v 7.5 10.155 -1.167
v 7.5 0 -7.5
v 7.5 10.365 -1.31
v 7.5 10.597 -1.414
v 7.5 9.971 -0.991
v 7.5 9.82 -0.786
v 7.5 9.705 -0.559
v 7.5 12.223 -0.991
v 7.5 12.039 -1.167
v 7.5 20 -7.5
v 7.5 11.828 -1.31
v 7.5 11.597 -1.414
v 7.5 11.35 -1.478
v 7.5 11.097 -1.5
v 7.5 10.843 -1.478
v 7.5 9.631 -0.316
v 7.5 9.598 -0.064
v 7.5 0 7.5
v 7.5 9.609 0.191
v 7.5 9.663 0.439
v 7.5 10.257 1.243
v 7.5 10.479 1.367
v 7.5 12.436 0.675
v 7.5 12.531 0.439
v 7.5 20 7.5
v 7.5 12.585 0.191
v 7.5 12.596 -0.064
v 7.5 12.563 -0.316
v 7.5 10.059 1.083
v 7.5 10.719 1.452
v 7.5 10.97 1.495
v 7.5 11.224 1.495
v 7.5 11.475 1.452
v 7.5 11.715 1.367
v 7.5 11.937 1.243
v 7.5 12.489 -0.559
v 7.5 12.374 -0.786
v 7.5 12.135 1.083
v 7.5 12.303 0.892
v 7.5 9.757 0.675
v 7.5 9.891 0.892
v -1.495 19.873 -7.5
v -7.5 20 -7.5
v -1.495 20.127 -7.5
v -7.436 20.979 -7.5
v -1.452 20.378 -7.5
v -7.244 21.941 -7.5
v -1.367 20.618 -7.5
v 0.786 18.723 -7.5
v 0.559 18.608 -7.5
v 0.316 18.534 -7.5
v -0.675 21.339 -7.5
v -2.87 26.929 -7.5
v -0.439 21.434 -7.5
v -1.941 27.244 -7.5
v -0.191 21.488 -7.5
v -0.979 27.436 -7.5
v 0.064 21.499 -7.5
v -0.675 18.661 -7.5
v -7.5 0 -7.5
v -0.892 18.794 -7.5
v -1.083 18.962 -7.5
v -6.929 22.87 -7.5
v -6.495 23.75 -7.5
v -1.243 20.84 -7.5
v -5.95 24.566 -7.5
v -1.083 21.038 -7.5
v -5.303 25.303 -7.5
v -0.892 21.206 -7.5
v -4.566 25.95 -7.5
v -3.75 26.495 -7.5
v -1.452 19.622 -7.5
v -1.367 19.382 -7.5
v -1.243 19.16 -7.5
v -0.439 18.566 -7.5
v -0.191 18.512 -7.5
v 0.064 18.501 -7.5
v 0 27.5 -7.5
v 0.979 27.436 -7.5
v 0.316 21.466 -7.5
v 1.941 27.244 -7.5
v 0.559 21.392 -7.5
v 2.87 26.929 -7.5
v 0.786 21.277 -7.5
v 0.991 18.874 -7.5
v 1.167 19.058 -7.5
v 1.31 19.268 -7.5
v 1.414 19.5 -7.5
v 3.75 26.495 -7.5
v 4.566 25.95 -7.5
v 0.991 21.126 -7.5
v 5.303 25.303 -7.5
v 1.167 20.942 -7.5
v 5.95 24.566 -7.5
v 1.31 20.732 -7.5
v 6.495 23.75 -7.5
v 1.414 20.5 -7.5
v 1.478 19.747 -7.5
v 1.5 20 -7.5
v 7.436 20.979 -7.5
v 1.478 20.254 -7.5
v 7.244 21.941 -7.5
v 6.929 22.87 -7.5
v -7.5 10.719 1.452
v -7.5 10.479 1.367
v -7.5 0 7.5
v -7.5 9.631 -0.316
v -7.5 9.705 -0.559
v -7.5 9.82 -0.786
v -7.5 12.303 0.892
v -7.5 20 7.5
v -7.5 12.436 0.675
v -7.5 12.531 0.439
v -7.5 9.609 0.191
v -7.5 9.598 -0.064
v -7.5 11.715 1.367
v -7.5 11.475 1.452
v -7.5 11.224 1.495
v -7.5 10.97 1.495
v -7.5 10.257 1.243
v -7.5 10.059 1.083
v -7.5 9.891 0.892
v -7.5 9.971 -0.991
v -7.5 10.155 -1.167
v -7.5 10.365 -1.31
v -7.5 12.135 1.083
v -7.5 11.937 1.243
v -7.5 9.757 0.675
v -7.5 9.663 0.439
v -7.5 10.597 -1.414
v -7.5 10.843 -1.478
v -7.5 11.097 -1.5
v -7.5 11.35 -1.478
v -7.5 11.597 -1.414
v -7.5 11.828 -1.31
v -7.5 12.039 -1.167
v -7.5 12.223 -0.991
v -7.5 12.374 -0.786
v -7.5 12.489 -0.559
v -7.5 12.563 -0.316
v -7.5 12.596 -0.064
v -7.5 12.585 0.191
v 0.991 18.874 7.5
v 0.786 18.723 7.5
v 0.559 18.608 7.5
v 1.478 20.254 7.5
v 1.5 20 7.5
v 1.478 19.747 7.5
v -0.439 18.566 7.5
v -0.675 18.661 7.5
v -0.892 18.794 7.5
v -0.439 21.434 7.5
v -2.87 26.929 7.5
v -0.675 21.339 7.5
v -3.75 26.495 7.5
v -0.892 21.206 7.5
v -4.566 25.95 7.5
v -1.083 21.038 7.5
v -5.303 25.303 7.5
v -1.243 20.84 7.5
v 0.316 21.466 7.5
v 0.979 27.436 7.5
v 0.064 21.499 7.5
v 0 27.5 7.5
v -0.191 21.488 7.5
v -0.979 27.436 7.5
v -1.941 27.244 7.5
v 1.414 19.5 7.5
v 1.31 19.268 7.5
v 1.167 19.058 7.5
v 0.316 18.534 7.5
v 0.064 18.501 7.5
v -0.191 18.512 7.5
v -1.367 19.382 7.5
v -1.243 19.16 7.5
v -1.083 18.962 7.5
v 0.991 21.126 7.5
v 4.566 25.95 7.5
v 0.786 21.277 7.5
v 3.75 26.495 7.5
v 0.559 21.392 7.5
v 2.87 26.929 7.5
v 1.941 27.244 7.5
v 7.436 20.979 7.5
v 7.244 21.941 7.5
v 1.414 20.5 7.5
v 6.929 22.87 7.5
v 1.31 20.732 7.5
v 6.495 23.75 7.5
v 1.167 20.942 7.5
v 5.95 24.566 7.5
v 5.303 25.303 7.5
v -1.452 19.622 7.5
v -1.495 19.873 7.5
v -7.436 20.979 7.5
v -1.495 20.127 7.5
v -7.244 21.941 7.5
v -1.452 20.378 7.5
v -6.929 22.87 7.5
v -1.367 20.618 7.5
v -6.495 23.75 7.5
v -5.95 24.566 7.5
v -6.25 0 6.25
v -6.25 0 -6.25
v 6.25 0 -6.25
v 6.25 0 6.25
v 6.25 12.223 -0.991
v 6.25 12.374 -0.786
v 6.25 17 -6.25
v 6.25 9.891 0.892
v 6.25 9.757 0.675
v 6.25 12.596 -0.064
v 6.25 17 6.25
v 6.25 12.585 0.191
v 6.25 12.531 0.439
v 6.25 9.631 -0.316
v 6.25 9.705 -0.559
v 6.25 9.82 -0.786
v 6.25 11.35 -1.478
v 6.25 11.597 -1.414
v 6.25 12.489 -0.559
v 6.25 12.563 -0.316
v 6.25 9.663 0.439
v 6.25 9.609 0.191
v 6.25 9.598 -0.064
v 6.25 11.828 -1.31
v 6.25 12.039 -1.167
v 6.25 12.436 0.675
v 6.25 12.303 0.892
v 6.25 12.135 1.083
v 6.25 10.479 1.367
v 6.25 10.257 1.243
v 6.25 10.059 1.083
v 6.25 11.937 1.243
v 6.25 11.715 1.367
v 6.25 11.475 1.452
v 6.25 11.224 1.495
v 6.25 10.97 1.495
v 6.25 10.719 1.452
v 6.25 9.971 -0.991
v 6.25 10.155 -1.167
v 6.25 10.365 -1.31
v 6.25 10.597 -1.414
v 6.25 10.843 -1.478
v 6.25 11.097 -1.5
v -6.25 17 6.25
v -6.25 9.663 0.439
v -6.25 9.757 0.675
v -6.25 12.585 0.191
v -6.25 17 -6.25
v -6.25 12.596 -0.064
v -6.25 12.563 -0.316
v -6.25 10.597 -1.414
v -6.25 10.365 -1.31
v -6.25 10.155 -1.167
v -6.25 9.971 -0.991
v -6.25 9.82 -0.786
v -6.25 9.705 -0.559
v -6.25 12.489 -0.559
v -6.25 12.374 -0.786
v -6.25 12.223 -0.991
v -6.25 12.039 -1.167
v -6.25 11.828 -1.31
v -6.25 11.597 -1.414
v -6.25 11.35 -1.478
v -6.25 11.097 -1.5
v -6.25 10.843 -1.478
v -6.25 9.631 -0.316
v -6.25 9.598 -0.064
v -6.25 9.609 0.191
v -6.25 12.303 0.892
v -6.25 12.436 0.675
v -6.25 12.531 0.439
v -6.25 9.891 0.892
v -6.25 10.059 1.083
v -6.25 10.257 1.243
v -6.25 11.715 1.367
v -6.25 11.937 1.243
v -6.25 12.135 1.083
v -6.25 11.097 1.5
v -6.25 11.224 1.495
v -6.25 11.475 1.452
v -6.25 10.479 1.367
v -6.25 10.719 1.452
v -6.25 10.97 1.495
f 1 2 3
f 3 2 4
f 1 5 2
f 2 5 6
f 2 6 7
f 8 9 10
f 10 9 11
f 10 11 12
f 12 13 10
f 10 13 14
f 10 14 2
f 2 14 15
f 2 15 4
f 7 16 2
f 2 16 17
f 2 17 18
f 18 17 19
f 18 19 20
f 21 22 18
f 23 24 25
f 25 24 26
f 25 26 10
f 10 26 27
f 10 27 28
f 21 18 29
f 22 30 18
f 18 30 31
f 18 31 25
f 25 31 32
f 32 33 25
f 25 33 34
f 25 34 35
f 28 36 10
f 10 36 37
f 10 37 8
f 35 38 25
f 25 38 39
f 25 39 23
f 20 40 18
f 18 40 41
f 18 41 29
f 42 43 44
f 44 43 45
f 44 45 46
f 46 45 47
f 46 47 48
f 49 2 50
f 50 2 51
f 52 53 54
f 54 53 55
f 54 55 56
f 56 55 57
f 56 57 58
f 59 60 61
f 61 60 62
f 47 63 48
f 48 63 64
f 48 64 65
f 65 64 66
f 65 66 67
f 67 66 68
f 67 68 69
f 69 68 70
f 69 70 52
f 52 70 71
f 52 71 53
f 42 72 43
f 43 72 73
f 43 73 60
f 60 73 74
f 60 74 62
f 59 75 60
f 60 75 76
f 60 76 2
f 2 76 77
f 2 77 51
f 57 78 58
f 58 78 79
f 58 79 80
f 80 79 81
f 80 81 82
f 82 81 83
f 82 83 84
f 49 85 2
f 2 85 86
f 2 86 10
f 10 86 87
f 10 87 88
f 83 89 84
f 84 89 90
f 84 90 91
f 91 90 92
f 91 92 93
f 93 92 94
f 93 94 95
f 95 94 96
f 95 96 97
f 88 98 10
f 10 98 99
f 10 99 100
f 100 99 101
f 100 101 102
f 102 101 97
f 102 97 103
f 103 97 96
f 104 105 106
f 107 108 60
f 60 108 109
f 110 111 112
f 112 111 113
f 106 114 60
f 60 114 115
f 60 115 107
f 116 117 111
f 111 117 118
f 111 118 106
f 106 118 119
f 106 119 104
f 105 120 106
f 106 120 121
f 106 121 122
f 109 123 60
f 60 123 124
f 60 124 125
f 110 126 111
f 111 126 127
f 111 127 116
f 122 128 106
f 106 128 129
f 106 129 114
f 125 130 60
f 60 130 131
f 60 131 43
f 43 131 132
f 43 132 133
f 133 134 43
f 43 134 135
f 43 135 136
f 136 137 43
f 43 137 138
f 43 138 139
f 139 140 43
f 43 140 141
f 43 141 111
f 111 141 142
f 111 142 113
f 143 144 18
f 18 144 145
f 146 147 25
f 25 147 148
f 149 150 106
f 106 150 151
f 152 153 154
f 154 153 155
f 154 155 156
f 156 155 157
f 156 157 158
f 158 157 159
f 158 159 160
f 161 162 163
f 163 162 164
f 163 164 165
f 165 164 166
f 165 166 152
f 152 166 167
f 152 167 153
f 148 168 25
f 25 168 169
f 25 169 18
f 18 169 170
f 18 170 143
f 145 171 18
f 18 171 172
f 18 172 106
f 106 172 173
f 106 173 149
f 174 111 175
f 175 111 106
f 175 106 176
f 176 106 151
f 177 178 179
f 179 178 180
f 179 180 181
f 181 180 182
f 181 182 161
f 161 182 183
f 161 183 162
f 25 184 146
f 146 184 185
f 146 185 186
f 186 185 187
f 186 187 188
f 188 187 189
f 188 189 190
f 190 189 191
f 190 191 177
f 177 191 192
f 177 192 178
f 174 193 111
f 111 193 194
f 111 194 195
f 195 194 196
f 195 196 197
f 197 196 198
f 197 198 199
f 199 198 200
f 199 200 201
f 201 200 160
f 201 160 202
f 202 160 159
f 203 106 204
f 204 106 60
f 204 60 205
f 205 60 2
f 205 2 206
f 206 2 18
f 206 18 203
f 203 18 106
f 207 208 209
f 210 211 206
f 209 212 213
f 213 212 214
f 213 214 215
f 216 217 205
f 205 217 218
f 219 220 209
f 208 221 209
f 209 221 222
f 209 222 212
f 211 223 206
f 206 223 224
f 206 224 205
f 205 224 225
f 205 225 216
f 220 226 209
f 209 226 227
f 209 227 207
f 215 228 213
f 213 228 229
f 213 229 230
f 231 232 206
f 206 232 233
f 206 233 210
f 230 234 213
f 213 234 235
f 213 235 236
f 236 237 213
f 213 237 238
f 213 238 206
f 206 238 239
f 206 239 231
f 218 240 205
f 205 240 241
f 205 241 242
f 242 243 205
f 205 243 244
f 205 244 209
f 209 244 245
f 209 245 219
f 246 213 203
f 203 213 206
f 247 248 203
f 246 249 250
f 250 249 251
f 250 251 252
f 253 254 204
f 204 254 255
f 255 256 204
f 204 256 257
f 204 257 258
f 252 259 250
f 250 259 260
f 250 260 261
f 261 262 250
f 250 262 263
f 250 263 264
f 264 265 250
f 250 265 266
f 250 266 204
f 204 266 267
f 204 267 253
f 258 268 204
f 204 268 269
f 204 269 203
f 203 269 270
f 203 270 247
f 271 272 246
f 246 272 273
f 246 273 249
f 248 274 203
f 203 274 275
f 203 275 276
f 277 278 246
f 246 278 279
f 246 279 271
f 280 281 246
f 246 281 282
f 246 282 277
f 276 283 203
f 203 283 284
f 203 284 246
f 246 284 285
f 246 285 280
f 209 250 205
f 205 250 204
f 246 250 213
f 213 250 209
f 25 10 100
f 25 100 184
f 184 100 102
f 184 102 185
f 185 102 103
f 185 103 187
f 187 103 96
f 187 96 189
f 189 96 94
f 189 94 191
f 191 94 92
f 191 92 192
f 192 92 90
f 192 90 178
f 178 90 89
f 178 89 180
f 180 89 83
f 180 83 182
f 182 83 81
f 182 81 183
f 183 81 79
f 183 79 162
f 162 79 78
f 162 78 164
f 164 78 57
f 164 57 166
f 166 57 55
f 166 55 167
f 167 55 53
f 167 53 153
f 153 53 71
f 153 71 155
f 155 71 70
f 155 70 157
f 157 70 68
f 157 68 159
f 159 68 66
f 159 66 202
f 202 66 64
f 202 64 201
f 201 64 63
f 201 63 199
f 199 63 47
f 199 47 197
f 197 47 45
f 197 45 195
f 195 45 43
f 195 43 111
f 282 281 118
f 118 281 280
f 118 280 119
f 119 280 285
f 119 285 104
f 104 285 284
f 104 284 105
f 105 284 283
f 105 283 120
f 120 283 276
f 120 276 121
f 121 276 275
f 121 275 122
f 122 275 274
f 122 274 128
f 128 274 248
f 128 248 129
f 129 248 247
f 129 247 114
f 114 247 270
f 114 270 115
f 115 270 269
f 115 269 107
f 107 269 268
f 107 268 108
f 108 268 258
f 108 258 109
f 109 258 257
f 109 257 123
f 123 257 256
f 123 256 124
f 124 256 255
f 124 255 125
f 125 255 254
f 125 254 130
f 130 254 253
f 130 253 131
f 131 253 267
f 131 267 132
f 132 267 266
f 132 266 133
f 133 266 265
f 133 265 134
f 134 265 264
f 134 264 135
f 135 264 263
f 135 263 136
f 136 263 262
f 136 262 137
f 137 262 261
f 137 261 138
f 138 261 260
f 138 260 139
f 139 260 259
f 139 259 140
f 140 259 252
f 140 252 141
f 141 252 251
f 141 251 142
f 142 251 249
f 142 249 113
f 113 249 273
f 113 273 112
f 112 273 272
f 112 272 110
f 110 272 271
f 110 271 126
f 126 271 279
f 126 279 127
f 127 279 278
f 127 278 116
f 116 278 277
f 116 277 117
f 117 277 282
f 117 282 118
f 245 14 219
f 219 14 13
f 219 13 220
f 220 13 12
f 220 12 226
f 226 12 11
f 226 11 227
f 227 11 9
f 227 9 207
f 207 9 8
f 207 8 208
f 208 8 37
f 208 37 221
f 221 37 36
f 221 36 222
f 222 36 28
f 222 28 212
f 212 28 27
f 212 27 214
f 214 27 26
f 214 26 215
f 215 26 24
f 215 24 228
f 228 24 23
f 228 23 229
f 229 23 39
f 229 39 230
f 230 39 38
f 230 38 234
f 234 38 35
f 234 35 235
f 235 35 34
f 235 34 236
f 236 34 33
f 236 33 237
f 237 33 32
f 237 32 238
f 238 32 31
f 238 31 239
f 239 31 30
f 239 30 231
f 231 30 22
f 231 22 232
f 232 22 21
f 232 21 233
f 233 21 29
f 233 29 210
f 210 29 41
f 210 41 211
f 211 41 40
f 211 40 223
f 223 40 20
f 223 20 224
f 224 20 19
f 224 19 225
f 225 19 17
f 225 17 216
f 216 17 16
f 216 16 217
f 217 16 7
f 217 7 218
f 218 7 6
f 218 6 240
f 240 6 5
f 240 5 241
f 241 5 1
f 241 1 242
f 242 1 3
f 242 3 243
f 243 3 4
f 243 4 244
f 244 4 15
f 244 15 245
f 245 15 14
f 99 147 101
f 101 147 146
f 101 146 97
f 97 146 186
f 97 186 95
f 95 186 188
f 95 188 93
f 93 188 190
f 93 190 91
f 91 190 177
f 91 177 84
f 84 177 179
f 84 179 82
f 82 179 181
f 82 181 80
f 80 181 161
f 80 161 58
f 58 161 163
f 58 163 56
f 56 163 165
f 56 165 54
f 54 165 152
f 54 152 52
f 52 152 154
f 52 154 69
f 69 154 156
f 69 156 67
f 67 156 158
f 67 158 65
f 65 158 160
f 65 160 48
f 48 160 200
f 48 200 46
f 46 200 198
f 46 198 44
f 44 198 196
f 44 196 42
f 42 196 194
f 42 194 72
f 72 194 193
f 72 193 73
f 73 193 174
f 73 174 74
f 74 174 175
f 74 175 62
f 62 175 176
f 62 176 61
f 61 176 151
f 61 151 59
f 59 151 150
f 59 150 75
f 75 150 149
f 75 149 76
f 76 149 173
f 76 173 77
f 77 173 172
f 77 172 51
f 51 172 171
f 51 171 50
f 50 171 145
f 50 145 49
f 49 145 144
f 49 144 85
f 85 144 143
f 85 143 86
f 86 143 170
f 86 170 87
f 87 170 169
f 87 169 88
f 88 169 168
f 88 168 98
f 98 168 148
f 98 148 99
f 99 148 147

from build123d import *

# Parameters (mm, degrees)
SKETCH1_W           = 15
SKETCH1_H           = 15
BOSS_EXTRUDE1_DEPTH = 20
CUT_EXTRUDE1_START  = -3
SKETCH2_W           = 12.5
SKETCH2_H           = 12.5
CUT_EXTRUDE1_DEPTH  = 17
BOSS_EXTRUDE3_DEPTH = 15
SKETCH6_R           = 1.5
CUT_EXTRUDE2_DEPTH  = 33.210246817
SKETCH7_R           = 1.5
CUT_EXTRUDE3_DEPTH  = 33.210246817


with BuildPart() as part:
    # Sketch1 → Boss-Extrude1 (new body)
    with BuildSketch(Plane(origin=(0, 0, 0), x_dir=(1, 0, 0), z_dir=(0, 1, 0))):
        Rectangle(SKETCH1_W, SKETCH1_H)
    extrude(amount=BOSS_EXTRUDE1_DEPTH)

    # Sketch2 → Cut-Extrude1 (cut)
    with BuildSketch(Plane(origin=(0, 20, 0), x_dir=(1, 0, 0), z_dir=(0, 1, 0)).offset(CUT_EXTRUDE1_START)):
        Rectangle(SKETCH2_W, SKETCH2_H)
    extrude(amount=-CUT_EXTRUDE1_DEPTH, mode=Mode.SUBTRACT)

    # Sketch5 → Boss-Extrude3 (add, through all)
    with BuildSketch(Plane(origin=(0, 0, -7.5), x_dir=(-1, 0, 0), z_dir=(0, 0, -1))):
        with BuildLine():
            Line((-7.5, 20), (7.5, 20))
            ThreePointArc((7.5, 20), (0, 27.5), (-7.5, 20))
        make_face()
    extrude(amount=-BOSS_EXTRUDE3_DEPTH)

    # Sketch6 → Cut-Extrude2 (cut, through all)
    with BuildSketch(Plane(origin=(7.5, 0, 0), x_dir=(0, 0, -1), z_dir=(1, 0, 0))):
        with Locations((0, 11.096857515)):
            Circle(SKETCH6_R)
    extrude(amount=-CUT_EXTRUDE2_DEPTH, mode=Mode.SUBTRACT)

    # Sketch7 → Cut-Extrude3 (cut, through all)
    with BuildSketch(Plane.XY.offset(7.5)):
        with Locations((0, 20)):
            Circle(SKETCH7_R)
    extrude(amount=-CUT_EXTRUDE3_DEPTH, mode=Mode.SUBTRACT)


solid = part.part
